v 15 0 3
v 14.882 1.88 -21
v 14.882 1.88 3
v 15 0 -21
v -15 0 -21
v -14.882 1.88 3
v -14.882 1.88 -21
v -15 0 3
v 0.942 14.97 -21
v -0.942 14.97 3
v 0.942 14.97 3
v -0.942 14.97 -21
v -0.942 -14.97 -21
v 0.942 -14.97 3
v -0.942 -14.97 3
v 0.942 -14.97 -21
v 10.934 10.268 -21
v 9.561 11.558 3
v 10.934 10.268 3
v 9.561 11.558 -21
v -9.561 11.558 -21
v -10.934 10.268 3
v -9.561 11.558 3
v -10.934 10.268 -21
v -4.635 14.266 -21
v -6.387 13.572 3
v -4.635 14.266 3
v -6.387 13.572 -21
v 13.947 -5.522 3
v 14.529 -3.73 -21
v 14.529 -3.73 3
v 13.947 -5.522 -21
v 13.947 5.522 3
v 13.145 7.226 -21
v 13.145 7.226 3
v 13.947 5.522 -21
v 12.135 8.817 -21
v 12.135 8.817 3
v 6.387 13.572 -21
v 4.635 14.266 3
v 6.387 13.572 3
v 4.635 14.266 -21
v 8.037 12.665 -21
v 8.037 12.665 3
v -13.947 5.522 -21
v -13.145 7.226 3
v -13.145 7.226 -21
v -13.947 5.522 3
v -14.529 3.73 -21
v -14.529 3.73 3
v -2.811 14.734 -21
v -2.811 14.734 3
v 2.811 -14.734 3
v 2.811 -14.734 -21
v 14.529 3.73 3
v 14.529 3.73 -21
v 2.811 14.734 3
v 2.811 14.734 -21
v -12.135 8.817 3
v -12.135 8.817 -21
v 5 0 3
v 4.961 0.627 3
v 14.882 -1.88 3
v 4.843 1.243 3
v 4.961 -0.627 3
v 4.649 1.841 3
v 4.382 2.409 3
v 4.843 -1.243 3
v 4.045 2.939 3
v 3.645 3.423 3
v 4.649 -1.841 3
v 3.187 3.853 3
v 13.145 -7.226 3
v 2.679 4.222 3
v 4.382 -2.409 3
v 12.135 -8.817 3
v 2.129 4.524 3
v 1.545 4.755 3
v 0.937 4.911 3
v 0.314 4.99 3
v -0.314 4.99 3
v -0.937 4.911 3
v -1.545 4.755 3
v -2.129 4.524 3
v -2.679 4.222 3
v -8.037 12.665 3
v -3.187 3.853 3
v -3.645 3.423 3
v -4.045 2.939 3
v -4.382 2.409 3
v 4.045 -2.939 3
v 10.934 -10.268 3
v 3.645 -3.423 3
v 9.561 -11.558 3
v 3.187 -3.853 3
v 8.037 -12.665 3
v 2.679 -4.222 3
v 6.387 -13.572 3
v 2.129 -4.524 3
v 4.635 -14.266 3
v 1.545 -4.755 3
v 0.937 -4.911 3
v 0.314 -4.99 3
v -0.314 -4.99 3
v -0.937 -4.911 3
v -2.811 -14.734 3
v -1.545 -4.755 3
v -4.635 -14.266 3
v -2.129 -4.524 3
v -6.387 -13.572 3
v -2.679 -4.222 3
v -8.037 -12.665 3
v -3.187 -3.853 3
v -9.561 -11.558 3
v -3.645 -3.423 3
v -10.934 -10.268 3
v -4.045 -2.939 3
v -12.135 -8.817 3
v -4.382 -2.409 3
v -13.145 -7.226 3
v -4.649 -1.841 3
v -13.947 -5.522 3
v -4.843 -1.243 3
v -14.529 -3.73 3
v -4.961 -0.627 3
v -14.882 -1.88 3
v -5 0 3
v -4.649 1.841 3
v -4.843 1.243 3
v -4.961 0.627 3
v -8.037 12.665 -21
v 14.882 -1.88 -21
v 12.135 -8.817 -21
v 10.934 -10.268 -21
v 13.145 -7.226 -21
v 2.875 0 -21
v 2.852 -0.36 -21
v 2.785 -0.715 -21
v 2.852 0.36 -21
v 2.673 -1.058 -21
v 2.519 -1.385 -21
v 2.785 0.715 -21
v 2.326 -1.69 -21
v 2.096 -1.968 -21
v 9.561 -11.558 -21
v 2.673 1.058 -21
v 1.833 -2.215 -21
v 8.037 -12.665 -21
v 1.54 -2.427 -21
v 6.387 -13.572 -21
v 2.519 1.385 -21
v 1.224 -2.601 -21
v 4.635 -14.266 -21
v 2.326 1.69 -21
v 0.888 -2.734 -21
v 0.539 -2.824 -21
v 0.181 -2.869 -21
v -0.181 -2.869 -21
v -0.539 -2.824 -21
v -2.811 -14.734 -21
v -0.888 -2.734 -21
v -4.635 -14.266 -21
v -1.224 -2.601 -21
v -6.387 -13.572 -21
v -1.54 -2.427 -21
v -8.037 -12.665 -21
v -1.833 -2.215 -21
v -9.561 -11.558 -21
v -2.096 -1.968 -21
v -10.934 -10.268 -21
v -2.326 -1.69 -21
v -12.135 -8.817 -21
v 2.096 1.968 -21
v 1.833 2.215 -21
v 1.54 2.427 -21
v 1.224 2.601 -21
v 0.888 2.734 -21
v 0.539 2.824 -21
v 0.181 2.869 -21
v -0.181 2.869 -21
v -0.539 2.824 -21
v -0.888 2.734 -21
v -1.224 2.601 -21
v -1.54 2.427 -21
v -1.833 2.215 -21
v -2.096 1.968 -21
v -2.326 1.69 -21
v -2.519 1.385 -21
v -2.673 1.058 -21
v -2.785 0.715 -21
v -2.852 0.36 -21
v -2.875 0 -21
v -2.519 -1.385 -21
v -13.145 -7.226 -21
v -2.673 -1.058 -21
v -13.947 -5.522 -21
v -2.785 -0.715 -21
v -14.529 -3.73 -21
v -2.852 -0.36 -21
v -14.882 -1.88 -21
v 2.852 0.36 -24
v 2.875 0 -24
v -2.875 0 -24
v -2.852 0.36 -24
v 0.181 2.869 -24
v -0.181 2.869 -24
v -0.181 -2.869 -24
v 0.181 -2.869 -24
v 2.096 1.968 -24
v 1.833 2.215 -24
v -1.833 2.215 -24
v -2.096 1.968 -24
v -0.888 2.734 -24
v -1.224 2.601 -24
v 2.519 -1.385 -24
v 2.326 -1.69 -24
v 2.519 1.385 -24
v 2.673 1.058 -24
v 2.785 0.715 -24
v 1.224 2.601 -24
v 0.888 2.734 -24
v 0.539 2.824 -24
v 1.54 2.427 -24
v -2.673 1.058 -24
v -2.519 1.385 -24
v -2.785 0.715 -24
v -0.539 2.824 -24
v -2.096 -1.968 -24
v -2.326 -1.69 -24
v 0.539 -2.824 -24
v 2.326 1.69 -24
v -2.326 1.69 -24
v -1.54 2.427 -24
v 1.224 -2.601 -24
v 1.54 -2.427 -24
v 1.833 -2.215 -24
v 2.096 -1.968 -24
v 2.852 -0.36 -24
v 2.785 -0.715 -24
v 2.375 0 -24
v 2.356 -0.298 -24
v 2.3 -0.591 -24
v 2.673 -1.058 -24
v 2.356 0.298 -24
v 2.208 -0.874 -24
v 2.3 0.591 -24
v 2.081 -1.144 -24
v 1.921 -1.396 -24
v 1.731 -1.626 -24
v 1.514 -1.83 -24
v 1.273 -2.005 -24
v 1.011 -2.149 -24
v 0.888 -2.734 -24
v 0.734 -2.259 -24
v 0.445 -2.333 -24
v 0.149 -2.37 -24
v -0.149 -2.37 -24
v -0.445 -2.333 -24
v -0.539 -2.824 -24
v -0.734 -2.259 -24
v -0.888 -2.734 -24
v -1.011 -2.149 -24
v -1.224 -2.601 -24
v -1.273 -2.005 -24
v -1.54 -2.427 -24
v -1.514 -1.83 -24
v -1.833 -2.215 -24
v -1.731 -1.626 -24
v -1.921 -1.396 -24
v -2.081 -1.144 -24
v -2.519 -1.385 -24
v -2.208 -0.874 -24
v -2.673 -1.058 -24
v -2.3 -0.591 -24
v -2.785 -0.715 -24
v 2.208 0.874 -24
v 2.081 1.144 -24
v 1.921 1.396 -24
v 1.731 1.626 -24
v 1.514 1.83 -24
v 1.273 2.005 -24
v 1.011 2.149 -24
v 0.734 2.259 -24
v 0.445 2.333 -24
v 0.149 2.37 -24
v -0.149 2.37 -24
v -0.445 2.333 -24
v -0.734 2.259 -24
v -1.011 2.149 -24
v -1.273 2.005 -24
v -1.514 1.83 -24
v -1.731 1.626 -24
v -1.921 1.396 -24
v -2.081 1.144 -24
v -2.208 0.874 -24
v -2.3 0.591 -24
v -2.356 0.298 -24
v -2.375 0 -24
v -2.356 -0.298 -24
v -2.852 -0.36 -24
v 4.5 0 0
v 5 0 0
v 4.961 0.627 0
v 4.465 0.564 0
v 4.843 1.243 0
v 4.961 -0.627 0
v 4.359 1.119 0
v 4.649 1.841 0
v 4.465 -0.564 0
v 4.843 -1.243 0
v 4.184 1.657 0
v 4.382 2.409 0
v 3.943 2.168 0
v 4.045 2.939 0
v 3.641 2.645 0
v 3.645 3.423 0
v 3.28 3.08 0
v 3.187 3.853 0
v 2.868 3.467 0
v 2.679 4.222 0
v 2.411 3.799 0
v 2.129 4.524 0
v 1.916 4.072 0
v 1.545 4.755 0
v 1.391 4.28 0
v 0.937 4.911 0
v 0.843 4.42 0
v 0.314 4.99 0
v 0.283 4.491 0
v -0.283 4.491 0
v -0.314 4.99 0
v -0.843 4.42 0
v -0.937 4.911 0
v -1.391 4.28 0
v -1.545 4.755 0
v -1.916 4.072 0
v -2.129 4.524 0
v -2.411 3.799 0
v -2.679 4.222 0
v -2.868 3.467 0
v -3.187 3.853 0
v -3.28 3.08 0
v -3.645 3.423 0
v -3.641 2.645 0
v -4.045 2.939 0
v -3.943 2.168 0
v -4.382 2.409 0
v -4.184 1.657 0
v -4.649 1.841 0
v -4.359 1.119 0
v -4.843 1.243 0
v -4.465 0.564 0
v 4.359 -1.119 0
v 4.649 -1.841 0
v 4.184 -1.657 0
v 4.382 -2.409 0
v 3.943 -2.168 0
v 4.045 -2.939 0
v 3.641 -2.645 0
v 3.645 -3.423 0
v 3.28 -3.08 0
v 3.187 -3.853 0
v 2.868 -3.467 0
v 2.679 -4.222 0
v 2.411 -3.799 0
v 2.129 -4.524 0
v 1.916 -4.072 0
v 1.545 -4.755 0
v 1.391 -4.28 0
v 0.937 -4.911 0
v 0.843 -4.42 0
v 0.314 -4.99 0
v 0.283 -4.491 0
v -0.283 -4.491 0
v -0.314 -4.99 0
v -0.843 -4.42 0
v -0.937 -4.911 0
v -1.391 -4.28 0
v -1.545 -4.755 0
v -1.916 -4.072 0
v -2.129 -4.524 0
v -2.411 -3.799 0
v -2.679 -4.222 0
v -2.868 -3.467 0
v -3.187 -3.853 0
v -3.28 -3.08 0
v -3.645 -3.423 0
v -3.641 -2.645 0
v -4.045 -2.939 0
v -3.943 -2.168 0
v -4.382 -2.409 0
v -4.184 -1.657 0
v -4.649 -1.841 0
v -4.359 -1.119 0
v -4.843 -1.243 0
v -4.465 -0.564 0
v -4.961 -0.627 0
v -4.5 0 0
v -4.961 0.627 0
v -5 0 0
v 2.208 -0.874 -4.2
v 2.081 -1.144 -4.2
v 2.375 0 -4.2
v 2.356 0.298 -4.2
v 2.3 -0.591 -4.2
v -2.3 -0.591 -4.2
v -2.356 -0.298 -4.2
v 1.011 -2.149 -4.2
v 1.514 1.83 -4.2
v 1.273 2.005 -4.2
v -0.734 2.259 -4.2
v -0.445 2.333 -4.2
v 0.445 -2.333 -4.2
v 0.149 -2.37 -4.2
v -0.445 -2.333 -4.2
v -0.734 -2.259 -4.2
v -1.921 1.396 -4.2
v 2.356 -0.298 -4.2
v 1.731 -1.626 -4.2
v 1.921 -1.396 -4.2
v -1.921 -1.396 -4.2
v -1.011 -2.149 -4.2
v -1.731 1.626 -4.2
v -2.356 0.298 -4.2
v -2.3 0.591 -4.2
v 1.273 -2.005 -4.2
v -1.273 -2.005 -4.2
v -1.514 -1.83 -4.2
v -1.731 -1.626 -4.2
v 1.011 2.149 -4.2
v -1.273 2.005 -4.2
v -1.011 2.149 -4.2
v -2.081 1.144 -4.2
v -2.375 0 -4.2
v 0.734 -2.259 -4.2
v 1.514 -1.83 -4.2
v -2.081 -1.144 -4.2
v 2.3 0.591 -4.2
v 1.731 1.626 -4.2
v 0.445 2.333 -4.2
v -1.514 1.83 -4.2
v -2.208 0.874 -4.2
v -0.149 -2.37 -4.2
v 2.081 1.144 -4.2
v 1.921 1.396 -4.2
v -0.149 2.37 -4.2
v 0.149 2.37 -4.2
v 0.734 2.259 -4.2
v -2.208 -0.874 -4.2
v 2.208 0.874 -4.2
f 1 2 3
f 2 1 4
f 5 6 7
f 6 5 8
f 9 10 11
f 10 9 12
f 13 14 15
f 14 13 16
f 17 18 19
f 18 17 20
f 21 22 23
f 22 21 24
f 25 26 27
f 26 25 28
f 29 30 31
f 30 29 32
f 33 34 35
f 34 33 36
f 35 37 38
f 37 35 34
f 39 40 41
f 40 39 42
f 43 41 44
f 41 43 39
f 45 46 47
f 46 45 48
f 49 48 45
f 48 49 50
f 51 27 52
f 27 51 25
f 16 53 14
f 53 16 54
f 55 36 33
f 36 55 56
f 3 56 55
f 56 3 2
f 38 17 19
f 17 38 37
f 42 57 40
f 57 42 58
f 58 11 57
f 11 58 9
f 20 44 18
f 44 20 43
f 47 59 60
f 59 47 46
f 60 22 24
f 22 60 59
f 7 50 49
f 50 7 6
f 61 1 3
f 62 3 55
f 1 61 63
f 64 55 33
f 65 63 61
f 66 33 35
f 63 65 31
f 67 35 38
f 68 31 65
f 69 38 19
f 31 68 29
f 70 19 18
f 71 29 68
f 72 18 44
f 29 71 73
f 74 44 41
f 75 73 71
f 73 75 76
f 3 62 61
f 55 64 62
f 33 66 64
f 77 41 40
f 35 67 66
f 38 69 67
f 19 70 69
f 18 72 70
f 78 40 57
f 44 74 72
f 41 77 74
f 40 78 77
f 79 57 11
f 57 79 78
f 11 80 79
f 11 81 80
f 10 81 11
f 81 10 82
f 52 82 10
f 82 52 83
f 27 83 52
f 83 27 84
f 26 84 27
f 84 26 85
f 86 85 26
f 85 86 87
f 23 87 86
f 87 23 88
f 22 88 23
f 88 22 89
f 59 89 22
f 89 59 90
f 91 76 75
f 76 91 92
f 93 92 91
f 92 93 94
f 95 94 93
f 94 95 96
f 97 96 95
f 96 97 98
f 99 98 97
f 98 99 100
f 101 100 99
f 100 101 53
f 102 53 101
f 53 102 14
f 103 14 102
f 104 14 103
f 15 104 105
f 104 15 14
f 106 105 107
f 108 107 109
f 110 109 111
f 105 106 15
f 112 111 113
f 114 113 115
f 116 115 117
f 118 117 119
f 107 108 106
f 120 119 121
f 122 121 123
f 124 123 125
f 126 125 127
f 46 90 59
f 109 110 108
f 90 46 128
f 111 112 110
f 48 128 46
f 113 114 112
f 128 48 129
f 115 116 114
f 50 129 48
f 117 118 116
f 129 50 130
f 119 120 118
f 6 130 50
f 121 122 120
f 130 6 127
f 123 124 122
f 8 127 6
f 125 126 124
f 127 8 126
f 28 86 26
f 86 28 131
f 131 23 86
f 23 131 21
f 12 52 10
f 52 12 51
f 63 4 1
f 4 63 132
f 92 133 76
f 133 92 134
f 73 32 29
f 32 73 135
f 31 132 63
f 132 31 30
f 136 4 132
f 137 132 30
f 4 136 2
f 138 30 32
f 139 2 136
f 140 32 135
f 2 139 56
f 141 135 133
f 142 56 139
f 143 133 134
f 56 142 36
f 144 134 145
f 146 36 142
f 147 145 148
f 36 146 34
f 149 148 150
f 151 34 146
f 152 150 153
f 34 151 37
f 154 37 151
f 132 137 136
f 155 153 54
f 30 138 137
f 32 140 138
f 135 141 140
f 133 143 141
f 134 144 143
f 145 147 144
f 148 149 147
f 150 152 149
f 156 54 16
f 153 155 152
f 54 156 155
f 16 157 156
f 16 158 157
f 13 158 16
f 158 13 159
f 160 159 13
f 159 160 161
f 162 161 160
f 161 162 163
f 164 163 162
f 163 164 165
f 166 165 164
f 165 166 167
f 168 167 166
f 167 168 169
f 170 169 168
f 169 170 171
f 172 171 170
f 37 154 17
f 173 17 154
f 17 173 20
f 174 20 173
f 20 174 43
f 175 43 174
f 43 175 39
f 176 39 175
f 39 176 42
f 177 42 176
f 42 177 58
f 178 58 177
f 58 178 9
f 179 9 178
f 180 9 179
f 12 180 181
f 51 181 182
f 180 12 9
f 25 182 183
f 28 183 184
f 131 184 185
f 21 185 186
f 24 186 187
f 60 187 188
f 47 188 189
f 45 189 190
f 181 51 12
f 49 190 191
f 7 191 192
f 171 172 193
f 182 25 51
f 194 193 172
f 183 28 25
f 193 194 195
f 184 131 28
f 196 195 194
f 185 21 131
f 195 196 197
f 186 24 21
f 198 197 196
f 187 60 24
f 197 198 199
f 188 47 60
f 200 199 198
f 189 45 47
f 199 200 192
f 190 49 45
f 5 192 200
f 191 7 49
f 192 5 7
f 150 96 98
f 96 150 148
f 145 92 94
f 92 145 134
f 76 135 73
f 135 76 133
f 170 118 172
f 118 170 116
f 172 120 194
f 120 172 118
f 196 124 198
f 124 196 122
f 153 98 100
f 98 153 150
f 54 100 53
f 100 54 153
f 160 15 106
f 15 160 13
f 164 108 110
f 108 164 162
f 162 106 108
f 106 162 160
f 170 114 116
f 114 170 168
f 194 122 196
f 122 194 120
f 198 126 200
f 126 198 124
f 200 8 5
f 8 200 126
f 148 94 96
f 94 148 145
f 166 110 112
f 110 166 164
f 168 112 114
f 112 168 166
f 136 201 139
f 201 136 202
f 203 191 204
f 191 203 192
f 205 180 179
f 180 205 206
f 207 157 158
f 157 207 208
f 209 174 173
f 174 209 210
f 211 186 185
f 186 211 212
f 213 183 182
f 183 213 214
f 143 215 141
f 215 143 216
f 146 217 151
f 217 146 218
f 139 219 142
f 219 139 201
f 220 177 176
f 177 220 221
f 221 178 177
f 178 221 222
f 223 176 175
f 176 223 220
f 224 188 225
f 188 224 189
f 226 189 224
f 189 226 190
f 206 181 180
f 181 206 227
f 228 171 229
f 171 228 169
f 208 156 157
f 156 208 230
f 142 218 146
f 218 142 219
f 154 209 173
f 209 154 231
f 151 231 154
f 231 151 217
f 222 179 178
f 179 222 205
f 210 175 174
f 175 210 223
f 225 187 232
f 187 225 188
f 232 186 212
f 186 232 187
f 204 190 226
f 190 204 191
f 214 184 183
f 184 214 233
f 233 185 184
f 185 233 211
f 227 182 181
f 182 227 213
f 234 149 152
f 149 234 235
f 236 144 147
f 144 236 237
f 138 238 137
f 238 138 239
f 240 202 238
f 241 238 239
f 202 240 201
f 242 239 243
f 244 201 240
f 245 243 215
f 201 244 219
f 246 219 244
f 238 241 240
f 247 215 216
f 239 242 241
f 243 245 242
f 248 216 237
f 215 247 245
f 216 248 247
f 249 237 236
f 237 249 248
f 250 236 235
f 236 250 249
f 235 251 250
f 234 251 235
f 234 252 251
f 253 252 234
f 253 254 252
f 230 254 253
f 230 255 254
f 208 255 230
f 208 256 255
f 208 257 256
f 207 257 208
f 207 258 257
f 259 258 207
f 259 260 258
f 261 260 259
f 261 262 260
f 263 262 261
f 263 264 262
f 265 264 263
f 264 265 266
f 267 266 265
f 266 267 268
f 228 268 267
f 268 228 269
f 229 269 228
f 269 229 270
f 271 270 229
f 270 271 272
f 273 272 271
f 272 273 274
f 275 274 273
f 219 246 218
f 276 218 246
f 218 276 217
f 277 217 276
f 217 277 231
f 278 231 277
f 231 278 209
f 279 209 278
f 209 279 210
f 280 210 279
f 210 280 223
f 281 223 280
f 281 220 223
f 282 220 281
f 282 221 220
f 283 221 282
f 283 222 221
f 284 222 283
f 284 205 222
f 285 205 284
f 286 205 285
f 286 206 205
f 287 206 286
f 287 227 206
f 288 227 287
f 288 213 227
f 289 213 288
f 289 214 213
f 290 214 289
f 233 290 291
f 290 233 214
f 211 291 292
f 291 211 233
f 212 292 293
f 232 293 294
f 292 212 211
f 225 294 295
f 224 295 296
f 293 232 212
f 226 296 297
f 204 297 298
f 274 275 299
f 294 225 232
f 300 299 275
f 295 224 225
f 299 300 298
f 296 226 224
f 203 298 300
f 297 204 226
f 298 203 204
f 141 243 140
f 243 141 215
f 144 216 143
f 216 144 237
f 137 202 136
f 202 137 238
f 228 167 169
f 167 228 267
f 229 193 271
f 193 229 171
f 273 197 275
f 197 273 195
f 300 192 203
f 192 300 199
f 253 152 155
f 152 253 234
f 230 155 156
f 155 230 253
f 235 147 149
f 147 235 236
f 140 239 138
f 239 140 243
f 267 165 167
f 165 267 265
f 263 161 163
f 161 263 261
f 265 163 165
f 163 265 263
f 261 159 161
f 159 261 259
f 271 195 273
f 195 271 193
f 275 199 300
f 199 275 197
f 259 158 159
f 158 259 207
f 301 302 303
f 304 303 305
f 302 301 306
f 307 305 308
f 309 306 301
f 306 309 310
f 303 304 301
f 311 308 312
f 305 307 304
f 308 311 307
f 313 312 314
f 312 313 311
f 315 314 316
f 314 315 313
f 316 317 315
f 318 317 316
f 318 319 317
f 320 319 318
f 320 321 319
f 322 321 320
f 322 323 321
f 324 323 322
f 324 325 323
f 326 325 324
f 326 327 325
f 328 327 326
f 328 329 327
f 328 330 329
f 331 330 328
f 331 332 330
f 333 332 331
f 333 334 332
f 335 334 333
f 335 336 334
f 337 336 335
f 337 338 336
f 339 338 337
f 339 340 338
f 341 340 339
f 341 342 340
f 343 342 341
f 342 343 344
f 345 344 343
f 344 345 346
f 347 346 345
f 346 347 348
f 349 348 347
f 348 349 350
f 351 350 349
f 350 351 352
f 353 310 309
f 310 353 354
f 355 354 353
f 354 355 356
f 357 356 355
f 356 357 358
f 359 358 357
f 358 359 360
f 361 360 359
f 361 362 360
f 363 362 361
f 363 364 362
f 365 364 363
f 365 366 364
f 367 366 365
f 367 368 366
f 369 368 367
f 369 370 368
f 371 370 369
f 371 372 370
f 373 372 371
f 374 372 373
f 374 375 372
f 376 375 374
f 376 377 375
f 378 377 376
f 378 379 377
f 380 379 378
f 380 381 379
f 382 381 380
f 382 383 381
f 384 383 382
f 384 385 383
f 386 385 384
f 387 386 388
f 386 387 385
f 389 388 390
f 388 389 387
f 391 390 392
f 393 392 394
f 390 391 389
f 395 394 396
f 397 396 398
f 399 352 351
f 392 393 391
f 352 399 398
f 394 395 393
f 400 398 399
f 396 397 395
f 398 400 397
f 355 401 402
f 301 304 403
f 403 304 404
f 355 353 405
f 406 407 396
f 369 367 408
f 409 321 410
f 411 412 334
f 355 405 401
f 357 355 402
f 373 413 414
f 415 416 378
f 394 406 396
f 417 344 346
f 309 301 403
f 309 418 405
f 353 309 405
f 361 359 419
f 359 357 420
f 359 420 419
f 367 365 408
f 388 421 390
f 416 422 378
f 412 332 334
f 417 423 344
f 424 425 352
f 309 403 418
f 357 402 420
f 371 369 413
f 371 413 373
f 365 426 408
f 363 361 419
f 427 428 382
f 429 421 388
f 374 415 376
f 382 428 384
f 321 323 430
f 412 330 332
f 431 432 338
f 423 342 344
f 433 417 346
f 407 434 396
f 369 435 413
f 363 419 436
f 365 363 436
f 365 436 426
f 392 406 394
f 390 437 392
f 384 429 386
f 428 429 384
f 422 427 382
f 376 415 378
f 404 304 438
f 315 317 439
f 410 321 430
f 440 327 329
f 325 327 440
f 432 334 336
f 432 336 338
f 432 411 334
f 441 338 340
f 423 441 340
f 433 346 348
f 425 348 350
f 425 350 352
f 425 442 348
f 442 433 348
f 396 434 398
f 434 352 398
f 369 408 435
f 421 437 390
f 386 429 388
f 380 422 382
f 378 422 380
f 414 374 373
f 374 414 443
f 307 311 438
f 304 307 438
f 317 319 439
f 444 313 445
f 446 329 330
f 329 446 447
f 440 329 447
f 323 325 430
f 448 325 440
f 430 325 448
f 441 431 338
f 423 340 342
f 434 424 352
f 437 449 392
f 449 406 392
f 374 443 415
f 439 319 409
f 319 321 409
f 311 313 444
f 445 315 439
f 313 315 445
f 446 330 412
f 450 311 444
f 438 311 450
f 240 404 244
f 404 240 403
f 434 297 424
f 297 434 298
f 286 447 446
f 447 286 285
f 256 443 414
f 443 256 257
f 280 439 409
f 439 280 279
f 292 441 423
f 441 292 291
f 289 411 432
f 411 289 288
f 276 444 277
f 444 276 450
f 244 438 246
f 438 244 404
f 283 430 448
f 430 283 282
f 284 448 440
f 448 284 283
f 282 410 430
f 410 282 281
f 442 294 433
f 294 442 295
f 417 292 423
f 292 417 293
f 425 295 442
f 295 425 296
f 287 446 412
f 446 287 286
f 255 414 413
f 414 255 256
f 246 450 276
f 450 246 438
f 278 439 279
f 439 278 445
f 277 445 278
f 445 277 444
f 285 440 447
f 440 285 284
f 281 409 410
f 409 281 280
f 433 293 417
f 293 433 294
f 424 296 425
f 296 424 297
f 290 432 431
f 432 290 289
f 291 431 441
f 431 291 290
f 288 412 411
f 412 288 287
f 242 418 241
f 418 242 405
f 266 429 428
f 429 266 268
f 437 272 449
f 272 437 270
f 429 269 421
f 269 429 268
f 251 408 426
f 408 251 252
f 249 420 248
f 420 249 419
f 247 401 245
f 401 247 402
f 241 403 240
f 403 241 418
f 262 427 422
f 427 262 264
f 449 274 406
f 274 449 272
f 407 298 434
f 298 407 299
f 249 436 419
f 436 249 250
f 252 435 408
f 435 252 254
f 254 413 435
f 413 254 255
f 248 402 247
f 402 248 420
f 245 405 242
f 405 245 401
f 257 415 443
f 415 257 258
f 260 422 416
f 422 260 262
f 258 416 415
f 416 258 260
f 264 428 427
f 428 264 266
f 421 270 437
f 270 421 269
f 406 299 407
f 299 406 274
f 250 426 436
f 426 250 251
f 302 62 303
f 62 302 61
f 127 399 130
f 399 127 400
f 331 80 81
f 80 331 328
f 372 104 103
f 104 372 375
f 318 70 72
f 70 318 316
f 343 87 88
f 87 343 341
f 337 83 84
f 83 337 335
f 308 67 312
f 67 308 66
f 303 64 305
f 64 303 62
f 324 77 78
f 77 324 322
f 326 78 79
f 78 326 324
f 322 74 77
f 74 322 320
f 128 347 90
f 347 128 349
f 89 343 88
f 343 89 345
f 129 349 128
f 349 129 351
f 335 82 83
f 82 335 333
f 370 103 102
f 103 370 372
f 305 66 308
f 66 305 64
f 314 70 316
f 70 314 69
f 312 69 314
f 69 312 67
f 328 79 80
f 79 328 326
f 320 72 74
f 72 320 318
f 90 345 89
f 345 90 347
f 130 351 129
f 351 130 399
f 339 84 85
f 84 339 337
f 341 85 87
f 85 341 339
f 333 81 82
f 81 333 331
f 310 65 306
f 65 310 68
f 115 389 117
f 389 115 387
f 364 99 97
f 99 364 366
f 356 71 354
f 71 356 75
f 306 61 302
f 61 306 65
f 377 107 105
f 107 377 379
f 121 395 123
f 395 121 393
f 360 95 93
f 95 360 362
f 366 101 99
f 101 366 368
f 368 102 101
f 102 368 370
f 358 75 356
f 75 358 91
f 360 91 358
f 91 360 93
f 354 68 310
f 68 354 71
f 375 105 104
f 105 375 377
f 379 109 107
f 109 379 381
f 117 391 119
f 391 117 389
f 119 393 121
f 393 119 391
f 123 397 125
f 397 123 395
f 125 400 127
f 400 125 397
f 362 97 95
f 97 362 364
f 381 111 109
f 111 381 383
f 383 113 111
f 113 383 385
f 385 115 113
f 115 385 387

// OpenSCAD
$fn = 50;

difference() {
	union() {
		translate(v = [0, 0, -21.0]) {
			cylinder(h = 24, r = 15.0);
		}
		#translate(v = [0, 0, -24.0]) {
			cylinder(h = 24, r = 2.875);
		}
	}
	union() {
		translate(v = [0, 0, 0]) {
			rotate(a = [0, 0, 0]) {
				difference() {
					union() {
						translate(v = [0, 0, -24.0]) {
							cylinder(h = 24, r = 2.25);
						}
						translate(v = [0, 0, -4.2]) {
							cylinder(h = 4.2, r1 = 2.375, r2 = 4.5);
						}
						translate(v = [0, 0, -24.0]) {
							cylinder(h = 24, r = 2.375);
						}
						translate(v = [0, 0, -24.0]) {
							cylinder(h = 24, r = 2.25);
						}
					}
					union();
				}
			}
		}
		#cylinder(h = 3, r = 5.0);
	}
}
